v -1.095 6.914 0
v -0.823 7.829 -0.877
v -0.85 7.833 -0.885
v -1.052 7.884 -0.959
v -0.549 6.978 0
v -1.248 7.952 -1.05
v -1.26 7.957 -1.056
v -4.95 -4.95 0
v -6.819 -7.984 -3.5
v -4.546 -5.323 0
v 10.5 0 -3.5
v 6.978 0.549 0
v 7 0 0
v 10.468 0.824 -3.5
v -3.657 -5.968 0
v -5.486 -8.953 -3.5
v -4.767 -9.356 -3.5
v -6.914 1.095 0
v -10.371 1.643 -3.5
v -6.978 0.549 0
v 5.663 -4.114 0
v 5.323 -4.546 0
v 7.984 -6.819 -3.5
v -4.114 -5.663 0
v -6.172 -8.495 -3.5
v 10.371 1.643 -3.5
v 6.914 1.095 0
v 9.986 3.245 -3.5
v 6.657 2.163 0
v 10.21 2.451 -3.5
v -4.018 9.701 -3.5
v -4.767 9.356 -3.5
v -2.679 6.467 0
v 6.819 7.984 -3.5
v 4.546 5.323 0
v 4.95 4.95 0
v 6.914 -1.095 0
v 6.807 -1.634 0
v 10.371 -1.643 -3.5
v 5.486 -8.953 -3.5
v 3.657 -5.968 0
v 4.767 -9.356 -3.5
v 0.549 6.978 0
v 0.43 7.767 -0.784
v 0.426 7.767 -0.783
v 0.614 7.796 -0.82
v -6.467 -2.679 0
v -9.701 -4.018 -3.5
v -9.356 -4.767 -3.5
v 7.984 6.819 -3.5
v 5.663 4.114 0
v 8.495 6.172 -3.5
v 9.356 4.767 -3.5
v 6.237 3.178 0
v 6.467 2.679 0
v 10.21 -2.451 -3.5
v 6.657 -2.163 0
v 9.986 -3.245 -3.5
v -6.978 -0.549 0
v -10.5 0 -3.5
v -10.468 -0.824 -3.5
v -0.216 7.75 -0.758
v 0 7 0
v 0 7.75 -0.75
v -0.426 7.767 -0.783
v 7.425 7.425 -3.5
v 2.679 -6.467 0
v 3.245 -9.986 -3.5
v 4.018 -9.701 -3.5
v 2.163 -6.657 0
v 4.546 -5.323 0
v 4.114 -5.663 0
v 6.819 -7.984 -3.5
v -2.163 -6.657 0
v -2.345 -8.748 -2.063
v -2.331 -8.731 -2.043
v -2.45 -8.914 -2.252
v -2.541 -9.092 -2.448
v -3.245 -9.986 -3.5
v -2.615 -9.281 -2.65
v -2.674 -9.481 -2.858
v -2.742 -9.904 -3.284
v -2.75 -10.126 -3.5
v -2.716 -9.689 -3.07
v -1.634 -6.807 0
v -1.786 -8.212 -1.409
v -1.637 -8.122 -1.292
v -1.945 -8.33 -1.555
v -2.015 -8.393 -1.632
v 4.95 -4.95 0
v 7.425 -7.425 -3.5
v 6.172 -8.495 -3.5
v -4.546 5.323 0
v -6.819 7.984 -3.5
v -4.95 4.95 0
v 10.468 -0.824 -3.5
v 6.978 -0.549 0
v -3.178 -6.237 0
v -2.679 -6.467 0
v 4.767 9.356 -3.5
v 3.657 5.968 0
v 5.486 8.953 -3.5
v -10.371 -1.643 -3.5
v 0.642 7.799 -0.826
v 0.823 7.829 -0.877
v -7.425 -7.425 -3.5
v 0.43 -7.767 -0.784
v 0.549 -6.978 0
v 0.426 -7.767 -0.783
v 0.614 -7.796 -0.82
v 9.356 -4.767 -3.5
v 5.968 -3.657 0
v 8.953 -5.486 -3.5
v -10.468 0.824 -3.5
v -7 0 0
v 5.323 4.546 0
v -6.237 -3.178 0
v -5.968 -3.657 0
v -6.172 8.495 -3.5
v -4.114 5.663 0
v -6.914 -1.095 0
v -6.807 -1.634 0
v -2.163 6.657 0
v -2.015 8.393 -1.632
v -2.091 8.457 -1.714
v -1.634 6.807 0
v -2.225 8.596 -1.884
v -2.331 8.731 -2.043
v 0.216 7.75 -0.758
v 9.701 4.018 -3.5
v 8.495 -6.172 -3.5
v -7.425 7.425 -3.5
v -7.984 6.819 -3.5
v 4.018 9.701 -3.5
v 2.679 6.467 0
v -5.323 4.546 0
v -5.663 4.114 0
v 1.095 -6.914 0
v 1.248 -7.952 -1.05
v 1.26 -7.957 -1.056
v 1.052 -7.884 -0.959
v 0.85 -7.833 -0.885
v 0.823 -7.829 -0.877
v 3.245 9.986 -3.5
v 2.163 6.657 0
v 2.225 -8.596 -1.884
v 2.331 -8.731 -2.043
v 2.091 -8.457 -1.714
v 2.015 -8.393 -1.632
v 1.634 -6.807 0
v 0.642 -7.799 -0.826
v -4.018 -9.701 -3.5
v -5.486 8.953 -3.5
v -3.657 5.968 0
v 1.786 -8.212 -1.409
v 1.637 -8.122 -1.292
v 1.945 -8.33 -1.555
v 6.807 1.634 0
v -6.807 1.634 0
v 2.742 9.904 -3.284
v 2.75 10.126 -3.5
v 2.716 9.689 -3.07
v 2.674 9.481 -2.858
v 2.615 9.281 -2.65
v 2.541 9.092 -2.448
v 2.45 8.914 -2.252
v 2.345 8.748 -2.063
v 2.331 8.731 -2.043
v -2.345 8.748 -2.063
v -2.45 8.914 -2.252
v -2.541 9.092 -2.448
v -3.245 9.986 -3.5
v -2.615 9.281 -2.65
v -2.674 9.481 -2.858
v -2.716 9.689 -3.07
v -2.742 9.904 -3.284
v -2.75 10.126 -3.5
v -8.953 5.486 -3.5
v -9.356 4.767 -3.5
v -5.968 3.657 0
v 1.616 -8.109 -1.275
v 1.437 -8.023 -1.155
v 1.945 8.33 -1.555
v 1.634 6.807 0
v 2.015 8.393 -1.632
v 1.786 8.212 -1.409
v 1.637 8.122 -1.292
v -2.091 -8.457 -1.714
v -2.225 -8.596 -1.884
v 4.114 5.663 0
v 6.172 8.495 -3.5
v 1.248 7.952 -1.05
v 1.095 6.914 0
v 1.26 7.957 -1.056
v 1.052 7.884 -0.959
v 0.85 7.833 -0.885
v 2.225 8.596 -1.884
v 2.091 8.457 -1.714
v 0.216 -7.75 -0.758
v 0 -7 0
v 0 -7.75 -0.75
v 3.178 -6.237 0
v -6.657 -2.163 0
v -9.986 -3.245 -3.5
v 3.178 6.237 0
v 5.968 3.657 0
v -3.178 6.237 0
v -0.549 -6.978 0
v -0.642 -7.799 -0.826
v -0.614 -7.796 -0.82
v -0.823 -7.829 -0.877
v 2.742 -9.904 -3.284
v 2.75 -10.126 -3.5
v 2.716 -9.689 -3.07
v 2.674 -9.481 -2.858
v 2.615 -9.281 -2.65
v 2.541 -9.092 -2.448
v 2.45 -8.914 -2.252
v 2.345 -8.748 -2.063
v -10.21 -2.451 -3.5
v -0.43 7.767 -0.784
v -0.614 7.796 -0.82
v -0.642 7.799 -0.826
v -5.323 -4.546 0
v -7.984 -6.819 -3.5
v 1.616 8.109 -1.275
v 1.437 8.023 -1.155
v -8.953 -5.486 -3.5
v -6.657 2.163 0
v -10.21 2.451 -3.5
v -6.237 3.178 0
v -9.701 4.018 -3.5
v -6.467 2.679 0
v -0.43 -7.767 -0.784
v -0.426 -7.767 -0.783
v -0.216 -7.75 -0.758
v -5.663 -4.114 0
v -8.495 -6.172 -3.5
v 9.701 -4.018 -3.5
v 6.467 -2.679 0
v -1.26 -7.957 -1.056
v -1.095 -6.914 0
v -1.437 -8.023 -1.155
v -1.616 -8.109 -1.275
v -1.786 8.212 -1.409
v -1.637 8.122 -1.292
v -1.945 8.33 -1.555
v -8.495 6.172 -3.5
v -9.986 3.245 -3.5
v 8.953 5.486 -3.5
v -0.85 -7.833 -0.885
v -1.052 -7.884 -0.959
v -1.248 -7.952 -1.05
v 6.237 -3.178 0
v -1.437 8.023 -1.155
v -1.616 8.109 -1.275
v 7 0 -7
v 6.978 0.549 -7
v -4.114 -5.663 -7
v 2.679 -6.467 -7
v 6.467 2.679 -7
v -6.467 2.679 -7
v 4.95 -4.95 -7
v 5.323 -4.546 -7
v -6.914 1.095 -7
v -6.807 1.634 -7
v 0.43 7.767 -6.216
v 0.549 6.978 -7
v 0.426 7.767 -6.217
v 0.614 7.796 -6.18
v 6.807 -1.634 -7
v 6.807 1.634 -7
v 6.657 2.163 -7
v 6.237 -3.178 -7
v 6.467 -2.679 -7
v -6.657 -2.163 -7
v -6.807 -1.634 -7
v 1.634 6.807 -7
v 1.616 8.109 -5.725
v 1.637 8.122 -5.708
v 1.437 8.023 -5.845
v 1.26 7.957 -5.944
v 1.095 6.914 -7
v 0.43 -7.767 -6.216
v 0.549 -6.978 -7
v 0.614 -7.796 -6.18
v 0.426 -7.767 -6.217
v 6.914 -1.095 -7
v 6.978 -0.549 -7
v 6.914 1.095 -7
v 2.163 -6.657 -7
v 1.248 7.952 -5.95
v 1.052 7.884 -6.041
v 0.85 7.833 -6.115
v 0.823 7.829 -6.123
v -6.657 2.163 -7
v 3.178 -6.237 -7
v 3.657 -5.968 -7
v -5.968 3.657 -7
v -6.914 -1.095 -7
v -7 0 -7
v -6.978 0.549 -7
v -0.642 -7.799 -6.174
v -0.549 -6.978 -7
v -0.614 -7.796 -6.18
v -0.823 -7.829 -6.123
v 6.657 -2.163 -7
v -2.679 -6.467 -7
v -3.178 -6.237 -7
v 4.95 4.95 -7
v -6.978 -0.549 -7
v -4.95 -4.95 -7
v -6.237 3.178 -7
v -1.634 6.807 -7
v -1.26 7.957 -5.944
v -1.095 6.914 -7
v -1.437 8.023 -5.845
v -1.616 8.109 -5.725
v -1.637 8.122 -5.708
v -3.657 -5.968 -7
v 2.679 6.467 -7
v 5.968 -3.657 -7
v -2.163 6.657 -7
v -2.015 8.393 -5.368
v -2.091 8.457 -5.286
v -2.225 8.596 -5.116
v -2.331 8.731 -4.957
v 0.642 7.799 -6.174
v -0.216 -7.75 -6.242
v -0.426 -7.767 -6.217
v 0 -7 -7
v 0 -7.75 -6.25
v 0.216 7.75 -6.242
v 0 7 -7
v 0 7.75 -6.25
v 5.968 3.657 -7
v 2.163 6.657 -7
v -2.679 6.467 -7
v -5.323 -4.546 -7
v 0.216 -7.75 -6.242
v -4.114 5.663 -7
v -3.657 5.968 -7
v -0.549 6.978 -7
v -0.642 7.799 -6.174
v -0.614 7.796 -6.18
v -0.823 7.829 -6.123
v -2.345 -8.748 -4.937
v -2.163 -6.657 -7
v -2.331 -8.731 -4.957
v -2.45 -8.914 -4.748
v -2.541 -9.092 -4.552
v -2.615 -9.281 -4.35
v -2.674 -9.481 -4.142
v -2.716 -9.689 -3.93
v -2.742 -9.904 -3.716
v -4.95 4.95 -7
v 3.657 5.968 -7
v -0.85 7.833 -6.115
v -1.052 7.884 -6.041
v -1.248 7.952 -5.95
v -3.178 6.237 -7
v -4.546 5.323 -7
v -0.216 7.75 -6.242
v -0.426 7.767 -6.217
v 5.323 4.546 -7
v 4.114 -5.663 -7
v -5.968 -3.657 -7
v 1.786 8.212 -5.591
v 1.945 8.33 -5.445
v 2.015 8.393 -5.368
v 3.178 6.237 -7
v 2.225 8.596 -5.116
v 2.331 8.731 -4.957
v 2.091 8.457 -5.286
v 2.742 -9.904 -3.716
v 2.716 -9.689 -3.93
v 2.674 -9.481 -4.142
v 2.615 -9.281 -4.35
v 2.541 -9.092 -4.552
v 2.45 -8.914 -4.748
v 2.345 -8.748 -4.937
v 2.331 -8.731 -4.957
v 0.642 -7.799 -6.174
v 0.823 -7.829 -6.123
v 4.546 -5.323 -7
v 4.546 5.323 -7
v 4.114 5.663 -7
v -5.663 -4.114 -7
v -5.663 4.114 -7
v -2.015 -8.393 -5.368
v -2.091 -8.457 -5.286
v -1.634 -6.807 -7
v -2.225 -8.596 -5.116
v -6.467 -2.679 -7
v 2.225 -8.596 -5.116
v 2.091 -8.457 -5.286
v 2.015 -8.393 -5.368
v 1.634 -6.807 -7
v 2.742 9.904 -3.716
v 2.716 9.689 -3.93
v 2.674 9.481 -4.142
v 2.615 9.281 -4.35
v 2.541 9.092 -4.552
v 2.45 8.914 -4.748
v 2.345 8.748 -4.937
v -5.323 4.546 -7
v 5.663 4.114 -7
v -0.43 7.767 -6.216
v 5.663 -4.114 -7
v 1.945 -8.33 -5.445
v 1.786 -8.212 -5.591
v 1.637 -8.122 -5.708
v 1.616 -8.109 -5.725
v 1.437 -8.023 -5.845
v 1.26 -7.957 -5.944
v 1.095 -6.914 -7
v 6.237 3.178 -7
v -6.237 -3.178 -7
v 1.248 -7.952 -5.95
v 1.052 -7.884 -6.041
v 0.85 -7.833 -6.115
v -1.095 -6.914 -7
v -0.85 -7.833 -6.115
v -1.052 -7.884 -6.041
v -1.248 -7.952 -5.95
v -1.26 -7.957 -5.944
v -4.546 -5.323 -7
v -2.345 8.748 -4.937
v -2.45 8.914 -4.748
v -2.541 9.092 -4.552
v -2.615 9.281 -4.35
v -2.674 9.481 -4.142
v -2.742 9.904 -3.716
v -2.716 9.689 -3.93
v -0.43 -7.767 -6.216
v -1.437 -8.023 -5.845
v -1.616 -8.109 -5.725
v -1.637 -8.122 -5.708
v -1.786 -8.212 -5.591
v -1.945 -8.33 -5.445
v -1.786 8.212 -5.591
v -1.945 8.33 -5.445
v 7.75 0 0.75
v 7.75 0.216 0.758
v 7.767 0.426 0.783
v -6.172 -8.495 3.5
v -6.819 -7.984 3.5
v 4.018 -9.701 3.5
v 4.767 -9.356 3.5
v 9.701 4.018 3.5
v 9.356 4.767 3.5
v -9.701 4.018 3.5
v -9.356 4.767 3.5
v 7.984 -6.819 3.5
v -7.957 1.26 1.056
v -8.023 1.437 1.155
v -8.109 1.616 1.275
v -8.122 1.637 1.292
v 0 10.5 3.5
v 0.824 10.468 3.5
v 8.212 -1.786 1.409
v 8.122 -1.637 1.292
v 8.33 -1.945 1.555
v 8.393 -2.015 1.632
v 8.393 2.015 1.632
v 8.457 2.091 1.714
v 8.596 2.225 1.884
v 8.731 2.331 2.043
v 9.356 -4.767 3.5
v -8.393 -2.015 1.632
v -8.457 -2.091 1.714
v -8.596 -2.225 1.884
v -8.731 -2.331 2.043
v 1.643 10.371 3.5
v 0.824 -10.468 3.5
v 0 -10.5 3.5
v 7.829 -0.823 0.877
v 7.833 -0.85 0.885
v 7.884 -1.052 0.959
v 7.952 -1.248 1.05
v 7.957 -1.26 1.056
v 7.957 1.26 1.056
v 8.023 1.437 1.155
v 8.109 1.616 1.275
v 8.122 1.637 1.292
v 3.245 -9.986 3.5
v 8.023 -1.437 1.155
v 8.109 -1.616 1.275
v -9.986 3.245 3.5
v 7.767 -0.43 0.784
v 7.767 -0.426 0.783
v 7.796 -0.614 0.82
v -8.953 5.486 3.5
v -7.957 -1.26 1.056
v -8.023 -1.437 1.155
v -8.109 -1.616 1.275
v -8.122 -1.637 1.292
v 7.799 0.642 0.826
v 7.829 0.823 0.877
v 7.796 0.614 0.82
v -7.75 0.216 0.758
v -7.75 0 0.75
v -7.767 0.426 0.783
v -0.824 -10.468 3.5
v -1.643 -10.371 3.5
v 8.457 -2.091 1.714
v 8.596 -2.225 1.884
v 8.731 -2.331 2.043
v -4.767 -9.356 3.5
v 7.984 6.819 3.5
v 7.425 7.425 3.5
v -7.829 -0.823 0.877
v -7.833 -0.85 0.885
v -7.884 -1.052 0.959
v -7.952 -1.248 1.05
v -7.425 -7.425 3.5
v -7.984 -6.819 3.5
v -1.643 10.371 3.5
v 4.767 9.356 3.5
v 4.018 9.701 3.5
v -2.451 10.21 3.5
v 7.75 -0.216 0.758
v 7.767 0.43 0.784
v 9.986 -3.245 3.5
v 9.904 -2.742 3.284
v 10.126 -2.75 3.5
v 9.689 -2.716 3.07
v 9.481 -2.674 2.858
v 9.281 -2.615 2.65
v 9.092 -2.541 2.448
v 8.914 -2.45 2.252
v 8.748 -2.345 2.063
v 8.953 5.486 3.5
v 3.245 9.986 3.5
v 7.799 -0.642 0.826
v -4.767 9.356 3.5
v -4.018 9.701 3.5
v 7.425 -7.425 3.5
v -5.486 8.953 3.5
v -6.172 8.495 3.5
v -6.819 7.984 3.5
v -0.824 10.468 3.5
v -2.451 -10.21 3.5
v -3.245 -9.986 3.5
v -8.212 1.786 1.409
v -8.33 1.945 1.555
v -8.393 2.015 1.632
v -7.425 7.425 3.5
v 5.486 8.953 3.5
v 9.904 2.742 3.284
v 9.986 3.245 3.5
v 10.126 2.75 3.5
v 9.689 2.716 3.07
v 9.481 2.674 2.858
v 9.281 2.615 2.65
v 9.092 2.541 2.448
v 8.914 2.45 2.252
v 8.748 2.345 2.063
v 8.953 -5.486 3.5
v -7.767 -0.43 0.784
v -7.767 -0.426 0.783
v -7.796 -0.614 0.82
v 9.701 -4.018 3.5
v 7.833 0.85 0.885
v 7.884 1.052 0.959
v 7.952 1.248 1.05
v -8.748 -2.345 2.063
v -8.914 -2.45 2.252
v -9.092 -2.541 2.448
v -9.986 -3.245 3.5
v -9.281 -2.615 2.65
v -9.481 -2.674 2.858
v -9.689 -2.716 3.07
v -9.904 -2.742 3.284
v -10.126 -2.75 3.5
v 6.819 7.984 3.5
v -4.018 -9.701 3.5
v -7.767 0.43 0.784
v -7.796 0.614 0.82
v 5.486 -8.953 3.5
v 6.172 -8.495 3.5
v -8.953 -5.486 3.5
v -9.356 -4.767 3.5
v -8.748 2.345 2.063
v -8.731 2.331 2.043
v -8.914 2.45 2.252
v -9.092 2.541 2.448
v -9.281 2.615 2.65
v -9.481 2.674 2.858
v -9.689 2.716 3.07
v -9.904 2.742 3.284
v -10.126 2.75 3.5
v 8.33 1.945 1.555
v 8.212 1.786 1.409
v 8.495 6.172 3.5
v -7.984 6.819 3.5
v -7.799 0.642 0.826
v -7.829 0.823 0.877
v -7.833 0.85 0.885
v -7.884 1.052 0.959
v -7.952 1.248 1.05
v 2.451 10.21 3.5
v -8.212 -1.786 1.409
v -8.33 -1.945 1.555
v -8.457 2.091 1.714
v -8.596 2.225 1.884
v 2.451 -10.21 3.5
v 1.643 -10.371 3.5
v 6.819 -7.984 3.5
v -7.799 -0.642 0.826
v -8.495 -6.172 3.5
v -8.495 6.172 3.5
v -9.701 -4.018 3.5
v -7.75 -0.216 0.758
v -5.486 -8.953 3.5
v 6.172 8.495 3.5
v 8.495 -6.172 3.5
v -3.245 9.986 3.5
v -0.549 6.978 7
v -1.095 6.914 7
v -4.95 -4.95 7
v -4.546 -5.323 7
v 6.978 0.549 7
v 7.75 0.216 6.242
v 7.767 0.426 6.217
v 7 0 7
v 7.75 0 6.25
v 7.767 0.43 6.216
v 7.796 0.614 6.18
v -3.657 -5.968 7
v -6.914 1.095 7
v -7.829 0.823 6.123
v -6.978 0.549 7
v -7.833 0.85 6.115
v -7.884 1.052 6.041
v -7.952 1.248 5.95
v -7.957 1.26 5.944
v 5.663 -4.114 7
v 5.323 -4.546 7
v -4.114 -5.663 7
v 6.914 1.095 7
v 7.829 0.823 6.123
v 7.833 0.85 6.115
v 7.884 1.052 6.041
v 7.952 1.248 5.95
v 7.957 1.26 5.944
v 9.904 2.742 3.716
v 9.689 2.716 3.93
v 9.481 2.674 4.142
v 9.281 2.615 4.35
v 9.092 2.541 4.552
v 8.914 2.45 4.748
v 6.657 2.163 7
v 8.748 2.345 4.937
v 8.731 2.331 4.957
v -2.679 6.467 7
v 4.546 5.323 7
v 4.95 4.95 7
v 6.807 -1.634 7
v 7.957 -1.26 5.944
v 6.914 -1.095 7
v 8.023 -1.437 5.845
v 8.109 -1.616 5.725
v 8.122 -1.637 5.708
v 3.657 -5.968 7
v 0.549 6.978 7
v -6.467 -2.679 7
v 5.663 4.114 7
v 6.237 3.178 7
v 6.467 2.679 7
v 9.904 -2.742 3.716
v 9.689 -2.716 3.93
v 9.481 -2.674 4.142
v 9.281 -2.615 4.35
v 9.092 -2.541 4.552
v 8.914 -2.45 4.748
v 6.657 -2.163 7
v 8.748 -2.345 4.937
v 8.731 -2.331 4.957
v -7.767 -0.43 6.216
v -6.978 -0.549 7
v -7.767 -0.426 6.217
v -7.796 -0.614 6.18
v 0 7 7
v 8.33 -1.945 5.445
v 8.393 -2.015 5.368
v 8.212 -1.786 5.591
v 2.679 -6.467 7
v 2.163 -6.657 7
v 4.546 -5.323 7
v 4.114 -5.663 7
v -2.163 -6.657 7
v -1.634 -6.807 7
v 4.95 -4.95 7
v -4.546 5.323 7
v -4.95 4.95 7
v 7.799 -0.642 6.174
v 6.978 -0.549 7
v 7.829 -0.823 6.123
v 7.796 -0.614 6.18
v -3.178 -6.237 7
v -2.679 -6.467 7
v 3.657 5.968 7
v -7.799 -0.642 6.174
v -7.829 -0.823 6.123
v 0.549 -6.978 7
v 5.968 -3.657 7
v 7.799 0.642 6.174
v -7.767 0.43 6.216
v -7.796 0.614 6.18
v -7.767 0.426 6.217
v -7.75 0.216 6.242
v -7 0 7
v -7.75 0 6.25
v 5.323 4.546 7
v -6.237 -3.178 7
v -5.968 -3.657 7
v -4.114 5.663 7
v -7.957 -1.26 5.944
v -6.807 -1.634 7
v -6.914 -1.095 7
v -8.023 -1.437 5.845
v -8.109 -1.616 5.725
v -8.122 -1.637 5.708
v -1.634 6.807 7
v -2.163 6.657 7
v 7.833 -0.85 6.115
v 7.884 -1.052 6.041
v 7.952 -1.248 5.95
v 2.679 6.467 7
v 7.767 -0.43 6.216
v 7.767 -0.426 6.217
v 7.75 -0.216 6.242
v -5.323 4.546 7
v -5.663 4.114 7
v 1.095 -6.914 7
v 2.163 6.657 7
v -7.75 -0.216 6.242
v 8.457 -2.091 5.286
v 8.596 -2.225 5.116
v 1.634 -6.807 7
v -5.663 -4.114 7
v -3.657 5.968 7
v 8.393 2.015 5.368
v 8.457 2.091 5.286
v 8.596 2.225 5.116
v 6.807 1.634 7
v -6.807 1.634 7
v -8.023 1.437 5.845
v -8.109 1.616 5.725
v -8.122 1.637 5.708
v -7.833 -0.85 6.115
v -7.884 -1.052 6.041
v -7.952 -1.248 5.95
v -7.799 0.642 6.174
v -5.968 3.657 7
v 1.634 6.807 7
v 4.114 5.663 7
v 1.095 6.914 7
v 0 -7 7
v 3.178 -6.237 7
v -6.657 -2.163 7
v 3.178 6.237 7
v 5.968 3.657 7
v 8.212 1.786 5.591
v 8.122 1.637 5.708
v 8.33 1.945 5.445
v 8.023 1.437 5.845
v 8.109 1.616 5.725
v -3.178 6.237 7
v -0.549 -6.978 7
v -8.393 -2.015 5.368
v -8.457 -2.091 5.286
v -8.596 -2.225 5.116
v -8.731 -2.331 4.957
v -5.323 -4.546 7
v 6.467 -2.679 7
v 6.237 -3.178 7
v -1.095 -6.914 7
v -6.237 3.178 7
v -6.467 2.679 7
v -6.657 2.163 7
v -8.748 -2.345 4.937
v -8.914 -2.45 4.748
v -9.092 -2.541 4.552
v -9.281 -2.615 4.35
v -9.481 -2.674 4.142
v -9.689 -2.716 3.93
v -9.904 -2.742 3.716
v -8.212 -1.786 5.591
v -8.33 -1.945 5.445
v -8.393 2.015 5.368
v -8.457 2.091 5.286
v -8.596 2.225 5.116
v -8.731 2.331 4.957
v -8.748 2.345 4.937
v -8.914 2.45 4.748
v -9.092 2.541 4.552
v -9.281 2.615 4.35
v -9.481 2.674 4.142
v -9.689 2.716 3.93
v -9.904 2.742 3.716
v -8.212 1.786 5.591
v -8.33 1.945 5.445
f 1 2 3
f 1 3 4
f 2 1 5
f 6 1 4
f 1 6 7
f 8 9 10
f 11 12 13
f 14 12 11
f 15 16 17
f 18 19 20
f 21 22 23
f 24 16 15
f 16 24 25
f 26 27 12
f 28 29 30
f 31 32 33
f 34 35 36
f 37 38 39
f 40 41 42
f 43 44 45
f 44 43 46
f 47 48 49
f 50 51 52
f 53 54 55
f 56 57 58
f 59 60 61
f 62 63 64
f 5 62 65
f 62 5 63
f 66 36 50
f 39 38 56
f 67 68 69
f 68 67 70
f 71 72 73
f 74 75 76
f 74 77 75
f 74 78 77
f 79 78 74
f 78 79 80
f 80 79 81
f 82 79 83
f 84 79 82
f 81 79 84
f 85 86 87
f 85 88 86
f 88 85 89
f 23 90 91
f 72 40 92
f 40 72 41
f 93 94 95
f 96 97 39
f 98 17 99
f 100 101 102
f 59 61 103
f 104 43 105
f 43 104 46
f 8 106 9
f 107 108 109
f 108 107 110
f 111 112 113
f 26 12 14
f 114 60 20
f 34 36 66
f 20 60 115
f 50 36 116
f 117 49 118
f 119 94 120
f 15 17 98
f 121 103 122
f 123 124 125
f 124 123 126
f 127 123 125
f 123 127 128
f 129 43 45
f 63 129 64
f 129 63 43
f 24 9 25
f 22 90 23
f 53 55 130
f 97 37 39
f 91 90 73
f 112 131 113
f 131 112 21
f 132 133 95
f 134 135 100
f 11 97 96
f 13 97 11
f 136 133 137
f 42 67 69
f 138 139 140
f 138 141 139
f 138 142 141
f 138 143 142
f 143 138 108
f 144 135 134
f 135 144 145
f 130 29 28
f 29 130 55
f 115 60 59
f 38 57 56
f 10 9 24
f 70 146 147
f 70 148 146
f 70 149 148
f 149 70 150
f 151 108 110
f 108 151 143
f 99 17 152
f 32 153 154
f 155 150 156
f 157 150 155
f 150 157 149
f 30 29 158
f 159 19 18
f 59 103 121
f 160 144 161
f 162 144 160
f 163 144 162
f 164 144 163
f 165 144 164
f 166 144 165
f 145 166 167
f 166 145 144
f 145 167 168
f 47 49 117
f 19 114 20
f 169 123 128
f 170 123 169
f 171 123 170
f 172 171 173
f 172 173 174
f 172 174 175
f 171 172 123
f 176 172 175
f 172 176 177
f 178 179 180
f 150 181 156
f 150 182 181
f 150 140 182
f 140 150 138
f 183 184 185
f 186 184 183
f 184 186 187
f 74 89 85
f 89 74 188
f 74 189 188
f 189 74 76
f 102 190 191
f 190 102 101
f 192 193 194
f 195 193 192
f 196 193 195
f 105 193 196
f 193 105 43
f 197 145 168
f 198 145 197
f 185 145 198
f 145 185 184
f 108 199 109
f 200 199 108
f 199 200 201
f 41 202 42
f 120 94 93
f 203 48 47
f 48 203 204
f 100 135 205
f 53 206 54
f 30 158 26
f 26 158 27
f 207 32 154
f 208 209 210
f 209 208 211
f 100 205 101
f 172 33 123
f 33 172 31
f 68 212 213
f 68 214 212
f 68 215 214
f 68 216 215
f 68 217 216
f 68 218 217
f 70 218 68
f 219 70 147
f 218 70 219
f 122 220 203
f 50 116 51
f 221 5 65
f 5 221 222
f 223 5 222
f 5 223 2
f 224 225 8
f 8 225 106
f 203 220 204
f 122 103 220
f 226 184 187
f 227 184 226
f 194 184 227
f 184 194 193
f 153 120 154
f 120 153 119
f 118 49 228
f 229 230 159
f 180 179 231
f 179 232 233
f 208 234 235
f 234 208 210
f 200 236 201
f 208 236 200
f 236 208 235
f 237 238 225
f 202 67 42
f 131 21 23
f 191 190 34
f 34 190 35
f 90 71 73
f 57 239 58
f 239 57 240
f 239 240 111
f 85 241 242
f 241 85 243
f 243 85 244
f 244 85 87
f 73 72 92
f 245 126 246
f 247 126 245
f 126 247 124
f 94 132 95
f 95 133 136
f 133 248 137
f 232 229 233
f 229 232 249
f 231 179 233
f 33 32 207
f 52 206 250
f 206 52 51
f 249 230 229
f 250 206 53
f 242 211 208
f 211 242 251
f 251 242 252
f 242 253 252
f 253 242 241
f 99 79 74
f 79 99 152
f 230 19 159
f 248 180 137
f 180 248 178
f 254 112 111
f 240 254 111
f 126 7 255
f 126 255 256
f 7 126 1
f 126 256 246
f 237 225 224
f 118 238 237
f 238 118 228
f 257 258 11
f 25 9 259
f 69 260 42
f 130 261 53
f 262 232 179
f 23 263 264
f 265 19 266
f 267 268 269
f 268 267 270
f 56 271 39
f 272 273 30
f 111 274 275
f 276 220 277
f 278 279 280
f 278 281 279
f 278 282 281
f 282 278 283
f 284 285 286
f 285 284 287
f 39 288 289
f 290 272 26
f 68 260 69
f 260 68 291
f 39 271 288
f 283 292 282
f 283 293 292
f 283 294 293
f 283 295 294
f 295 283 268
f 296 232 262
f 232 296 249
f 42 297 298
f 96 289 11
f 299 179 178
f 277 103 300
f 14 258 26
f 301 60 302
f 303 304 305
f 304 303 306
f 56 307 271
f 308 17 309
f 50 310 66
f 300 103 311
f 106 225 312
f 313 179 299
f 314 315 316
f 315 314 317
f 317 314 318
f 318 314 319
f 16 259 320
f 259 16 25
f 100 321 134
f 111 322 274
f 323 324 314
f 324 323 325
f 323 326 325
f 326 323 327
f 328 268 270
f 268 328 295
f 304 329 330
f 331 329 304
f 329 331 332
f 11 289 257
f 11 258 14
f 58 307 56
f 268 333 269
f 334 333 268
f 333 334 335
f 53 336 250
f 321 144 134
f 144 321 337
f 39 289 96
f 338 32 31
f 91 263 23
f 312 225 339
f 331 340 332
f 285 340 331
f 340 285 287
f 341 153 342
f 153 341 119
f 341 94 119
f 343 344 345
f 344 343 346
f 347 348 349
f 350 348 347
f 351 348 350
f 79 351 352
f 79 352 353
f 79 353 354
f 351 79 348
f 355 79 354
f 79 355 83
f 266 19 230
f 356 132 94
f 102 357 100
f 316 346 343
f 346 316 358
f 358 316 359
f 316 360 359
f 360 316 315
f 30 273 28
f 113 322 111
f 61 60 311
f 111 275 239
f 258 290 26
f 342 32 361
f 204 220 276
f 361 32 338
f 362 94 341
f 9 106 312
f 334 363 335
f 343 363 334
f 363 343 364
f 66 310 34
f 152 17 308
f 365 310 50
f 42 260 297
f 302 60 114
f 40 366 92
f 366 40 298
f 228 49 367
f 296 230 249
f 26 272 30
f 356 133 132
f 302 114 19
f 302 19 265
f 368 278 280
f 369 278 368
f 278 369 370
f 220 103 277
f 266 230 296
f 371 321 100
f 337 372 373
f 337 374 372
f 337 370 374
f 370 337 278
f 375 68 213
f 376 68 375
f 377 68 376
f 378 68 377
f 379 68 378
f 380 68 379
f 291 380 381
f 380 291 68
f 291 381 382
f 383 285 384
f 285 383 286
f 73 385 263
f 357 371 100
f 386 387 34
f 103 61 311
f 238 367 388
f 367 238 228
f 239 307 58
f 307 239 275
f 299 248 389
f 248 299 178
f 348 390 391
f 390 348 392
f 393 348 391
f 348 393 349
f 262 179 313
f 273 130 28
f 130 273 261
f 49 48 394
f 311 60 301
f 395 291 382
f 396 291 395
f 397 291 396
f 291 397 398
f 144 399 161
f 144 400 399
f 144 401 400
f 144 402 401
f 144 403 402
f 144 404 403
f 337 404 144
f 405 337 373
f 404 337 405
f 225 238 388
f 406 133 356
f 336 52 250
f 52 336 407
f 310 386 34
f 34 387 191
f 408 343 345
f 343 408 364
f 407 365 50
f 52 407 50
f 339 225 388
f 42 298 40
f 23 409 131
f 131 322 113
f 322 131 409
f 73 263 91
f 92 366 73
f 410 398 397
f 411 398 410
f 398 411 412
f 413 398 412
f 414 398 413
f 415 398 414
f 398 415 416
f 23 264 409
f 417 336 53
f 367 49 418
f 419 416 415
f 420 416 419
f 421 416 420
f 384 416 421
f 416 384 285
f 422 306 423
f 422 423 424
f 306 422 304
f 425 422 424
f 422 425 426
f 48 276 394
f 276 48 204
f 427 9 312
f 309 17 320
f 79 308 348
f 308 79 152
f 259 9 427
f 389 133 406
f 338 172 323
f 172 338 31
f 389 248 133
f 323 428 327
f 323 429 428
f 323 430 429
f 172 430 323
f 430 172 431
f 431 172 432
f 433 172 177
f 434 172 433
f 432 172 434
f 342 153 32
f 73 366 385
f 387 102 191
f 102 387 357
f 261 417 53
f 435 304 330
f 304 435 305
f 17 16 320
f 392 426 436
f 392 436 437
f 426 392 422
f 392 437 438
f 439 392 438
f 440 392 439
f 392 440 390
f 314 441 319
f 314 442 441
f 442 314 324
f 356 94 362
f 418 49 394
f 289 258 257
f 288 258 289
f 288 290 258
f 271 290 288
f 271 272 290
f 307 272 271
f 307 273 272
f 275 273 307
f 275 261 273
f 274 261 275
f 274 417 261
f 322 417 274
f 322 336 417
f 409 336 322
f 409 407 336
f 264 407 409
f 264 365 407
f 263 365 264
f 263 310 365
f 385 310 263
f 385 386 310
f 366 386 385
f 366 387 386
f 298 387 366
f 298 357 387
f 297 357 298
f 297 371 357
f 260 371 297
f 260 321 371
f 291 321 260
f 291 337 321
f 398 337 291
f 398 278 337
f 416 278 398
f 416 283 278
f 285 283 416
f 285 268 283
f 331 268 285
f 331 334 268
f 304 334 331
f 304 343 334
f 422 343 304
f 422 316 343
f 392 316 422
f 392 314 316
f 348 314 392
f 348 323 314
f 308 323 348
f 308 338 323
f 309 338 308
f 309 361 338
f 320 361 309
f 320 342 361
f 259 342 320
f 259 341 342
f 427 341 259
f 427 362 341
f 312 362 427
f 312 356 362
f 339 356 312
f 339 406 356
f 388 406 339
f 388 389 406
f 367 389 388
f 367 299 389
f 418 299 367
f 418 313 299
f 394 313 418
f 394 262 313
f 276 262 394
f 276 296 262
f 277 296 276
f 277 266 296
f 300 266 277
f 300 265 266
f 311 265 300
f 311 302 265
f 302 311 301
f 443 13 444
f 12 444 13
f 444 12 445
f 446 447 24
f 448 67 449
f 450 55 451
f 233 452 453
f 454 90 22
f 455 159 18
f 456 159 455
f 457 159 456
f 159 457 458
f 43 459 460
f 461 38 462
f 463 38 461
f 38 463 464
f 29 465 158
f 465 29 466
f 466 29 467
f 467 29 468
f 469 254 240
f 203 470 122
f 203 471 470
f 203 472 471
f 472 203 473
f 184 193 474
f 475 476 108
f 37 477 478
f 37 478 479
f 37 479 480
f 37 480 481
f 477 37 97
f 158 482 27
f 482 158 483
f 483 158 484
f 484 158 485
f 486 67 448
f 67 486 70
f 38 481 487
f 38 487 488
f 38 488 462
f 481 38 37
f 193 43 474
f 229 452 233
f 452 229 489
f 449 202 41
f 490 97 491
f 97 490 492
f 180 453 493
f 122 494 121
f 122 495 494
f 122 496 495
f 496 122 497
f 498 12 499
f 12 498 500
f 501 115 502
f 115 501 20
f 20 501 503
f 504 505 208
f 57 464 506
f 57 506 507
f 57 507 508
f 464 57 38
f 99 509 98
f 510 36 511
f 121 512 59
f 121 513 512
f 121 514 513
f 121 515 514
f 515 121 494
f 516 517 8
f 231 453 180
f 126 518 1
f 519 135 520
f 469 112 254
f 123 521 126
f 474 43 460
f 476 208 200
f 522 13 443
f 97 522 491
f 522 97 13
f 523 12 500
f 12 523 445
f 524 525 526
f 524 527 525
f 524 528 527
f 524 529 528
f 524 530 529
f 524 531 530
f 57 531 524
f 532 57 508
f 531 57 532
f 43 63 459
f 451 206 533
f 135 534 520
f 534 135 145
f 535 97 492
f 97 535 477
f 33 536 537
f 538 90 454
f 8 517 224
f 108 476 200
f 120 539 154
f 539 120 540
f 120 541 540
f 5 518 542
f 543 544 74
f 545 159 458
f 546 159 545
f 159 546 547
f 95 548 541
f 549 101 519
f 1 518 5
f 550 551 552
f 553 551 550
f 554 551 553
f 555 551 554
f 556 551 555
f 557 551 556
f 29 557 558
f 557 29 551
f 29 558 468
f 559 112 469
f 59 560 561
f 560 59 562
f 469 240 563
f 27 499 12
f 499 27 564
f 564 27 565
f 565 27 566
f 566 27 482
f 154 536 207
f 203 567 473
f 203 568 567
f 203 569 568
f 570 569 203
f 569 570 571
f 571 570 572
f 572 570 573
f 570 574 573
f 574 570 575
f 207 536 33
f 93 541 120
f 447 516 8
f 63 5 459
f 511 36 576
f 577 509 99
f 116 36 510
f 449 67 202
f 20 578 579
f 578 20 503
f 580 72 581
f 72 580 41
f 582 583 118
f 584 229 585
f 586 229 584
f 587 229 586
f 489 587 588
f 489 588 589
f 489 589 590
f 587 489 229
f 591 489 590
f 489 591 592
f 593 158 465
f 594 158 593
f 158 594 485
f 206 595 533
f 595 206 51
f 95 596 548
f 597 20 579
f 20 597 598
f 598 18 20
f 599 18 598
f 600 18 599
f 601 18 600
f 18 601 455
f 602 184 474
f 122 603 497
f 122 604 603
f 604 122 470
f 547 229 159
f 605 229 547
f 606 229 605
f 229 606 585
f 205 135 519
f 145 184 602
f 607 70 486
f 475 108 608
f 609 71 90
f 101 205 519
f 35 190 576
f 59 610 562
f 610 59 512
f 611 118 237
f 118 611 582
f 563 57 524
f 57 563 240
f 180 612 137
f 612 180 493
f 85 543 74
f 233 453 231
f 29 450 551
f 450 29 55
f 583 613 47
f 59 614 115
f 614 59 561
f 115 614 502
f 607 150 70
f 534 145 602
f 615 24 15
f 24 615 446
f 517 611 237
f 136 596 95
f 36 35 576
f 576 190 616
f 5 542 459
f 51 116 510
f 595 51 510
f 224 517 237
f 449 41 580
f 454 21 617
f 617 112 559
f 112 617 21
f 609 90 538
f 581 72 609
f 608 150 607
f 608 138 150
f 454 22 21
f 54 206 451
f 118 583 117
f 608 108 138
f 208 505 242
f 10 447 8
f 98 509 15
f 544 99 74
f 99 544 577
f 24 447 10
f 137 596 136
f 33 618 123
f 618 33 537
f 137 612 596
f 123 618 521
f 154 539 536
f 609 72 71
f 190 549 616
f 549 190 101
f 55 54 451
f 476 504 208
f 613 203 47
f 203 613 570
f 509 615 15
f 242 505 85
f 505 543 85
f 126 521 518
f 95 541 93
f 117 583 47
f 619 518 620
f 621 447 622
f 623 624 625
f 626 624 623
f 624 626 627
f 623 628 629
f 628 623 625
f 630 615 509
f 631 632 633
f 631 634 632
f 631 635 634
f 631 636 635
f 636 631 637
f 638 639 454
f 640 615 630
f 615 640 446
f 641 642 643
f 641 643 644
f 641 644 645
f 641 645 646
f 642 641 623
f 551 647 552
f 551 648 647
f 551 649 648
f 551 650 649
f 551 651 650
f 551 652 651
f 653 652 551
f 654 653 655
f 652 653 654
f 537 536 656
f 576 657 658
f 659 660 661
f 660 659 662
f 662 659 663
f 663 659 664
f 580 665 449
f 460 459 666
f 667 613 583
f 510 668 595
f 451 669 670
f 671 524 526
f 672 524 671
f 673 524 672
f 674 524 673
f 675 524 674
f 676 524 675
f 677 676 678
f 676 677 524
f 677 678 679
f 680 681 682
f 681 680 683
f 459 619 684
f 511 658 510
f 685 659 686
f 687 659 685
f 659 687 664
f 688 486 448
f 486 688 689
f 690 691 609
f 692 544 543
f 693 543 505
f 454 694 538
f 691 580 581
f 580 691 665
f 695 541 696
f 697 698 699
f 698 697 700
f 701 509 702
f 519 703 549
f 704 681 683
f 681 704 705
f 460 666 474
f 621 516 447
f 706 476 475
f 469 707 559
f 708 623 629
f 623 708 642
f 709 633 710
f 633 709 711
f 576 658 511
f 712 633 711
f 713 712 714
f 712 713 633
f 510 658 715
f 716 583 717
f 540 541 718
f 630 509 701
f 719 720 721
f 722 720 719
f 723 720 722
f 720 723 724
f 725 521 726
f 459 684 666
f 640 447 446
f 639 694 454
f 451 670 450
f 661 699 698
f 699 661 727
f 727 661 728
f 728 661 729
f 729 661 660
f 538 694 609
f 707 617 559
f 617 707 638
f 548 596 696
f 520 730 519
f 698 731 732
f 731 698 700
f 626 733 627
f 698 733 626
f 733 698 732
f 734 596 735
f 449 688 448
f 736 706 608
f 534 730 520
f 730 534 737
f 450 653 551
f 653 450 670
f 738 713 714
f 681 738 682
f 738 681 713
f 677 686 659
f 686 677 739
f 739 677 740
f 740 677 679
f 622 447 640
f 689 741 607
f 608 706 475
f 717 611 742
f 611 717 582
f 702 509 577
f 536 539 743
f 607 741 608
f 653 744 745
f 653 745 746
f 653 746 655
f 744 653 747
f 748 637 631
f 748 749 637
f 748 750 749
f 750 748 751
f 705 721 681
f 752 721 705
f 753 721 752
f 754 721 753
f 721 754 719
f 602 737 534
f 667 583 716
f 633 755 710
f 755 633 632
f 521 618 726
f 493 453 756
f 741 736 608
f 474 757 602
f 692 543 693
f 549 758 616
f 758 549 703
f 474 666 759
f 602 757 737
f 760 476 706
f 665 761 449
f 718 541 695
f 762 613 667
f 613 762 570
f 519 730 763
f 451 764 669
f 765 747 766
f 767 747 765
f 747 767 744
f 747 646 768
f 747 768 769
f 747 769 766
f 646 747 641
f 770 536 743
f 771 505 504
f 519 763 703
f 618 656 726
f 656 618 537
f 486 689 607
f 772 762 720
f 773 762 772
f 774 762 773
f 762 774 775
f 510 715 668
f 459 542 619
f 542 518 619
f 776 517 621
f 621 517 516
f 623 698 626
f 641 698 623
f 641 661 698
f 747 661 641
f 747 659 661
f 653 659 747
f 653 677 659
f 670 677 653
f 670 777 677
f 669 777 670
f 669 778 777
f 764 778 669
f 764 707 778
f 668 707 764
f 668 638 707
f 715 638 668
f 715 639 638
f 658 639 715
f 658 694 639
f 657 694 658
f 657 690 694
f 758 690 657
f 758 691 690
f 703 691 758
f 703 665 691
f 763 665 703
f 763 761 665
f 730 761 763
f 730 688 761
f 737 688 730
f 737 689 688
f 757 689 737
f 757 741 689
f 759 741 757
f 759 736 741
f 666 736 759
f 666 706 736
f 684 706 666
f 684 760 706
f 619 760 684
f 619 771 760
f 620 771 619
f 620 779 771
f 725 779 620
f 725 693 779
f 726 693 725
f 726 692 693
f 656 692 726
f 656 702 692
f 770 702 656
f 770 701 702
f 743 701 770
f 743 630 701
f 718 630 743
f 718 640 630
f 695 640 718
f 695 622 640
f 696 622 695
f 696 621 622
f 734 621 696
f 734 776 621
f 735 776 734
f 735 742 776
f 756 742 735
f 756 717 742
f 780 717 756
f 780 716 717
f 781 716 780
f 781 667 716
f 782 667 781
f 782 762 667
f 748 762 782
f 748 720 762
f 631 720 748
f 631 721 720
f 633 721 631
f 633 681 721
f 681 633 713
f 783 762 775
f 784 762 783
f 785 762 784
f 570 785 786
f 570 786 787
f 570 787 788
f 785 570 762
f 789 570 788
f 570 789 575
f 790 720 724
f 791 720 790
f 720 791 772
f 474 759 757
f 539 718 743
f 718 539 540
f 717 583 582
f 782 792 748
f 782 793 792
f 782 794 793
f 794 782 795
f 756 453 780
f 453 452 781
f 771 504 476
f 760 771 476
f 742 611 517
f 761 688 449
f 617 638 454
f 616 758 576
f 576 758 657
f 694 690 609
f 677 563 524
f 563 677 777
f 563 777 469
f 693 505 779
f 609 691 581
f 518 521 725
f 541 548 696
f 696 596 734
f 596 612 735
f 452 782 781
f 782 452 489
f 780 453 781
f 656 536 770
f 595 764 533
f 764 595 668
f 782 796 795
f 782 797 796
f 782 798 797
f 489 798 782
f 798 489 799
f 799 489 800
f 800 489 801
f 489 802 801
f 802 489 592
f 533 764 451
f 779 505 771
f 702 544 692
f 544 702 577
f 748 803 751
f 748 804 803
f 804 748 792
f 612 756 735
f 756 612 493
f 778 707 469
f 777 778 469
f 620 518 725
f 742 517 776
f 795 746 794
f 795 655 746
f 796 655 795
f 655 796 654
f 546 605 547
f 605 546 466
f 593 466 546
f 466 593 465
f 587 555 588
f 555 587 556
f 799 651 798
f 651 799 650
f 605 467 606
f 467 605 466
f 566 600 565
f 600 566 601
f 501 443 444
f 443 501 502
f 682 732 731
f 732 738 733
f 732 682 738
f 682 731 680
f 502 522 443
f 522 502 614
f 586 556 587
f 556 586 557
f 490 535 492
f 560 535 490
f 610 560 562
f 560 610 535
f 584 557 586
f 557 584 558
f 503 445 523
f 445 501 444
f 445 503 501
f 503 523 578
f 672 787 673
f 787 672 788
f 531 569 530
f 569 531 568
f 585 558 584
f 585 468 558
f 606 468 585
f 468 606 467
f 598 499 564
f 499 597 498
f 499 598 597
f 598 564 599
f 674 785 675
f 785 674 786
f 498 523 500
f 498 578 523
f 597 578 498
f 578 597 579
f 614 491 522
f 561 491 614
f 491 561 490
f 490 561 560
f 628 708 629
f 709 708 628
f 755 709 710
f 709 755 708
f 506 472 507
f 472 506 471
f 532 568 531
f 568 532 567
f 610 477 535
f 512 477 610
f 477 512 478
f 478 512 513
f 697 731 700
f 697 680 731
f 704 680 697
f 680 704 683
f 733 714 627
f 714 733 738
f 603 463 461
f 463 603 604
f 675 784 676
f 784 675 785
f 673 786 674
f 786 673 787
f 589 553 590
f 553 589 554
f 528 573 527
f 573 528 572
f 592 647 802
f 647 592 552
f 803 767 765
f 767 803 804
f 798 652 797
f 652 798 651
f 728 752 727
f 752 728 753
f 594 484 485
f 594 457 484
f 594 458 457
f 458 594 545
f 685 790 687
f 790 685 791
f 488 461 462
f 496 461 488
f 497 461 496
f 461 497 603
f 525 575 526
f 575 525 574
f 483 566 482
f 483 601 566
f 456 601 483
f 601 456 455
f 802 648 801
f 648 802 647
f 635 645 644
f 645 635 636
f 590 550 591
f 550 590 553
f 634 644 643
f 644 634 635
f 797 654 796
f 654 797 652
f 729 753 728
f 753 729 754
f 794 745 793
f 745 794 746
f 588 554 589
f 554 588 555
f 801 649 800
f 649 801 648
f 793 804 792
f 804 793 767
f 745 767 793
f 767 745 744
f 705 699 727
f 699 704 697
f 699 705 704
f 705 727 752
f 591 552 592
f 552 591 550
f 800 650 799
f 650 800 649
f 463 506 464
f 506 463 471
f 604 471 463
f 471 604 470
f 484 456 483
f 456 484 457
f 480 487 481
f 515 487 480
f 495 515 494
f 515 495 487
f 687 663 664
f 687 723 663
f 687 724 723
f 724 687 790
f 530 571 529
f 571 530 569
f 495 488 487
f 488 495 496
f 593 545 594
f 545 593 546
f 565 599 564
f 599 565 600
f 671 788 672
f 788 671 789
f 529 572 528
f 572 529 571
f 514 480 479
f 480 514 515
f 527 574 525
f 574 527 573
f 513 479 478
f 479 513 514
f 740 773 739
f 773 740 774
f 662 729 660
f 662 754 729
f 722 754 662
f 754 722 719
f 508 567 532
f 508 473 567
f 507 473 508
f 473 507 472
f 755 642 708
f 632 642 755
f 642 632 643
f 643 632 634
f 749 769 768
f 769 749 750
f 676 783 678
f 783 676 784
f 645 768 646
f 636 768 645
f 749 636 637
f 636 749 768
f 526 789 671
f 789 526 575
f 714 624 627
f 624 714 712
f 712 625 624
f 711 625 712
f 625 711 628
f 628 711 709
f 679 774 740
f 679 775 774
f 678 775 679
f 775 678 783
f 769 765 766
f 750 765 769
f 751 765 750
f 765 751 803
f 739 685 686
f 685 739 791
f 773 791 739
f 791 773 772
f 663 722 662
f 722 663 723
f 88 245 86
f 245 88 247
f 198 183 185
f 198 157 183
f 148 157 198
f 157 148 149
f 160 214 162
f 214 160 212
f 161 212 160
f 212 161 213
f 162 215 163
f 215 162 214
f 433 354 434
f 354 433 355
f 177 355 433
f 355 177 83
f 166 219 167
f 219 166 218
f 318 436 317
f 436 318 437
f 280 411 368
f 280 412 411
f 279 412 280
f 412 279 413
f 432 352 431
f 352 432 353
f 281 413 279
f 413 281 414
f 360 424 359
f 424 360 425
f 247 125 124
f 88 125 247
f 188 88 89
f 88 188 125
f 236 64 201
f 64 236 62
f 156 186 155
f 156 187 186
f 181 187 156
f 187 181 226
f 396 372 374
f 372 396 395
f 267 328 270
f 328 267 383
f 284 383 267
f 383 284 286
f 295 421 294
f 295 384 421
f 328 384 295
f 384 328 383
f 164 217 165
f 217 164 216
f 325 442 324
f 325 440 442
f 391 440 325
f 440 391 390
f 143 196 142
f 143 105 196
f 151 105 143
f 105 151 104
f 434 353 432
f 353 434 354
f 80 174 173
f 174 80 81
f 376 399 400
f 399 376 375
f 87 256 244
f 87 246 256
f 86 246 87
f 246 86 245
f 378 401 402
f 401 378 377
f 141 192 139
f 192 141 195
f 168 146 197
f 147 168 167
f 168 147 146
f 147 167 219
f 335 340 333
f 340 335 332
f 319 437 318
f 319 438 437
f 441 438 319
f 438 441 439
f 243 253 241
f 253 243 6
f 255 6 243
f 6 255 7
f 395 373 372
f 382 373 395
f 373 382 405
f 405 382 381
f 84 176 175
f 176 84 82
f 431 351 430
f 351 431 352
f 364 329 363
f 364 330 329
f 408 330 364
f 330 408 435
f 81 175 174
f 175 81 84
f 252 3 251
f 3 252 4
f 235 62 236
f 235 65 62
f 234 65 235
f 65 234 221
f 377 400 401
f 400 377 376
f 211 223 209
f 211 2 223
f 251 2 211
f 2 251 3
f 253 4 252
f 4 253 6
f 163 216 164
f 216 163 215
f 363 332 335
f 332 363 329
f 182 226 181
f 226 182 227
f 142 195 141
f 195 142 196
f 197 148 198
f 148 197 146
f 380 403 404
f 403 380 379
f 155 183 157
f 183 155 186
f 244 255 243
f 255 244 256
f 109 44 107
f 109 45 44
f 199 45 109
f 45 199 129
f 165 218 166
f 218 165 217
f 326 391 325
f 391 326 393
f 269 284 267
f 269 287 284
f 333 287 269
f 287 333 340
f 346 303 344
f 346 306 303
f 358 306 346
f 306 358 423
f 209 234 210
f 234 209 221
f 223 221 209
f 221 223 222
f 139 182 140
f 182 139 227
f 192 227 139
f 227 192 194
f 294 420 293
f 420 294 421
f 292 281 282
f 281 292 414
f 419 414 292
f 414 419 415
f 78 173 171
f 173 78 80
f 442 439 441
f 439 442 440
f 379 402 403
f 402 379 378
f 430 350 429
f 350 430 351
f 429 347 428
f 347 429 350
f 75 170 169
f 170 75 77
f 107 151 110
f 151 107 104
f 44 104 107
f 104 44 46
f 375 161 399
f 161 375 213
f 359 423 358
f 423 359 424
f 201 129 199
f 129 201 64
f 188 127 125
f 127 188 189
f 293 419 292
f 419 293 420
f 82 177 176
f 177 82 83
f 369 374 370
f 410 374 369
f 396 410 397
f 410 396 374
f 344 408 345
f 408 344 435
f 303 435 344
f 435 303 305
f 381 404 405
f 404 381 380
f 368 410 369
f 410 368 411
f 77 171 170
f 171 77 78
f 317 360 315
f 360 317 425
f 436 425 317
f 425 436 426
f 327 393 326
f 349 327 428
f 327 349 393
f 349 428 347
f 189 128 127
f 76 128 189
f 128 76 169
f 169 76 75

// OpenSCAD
tube_diameter = 5.5;
tube_spacing = 7;
spacer_diameter1 = 3*tube_spacing;
spacer_diameter2 = 2*tube_spacing;

$fn = 80;

difference(){
    union(){
      translate([0, 0, -tube_spacing/2])
        cylinder(h = tube_spacing/2, d1 = spacer_diameter1, d2 = spacer_diameter2, center = false);
      translate([0, 0, -tube_spacing])
        cylinder(h = tube_spacing/2, d2 = spacer_diameter1, d1 = spacer_diameter2, center = false);
      translate([0, 0, 0])
        cylinder(h = tube_spacing/2, d2 = spacer_diameter1, d1 = spacer_diameter2, center = false);
      translate([0, 0, tube_spacing/2])
        cylinder(h = tube_spacing/2, d1 = spacer_diameter1, d2 = spacer_diameter2, center = false);
    }
    translate([0, 0, tube_spacing/2]) {
        rotate([0,90,0])
            cylinder( h=spacer_diameter1, d=tube_diameter, center=true);
    }
    translate([0, 0, -tube_spacing/2]) {
        rotate([90,0,0])
            cylinder( h=spacer_diameter1, d=tube_diameter, center=true);
    }

}
